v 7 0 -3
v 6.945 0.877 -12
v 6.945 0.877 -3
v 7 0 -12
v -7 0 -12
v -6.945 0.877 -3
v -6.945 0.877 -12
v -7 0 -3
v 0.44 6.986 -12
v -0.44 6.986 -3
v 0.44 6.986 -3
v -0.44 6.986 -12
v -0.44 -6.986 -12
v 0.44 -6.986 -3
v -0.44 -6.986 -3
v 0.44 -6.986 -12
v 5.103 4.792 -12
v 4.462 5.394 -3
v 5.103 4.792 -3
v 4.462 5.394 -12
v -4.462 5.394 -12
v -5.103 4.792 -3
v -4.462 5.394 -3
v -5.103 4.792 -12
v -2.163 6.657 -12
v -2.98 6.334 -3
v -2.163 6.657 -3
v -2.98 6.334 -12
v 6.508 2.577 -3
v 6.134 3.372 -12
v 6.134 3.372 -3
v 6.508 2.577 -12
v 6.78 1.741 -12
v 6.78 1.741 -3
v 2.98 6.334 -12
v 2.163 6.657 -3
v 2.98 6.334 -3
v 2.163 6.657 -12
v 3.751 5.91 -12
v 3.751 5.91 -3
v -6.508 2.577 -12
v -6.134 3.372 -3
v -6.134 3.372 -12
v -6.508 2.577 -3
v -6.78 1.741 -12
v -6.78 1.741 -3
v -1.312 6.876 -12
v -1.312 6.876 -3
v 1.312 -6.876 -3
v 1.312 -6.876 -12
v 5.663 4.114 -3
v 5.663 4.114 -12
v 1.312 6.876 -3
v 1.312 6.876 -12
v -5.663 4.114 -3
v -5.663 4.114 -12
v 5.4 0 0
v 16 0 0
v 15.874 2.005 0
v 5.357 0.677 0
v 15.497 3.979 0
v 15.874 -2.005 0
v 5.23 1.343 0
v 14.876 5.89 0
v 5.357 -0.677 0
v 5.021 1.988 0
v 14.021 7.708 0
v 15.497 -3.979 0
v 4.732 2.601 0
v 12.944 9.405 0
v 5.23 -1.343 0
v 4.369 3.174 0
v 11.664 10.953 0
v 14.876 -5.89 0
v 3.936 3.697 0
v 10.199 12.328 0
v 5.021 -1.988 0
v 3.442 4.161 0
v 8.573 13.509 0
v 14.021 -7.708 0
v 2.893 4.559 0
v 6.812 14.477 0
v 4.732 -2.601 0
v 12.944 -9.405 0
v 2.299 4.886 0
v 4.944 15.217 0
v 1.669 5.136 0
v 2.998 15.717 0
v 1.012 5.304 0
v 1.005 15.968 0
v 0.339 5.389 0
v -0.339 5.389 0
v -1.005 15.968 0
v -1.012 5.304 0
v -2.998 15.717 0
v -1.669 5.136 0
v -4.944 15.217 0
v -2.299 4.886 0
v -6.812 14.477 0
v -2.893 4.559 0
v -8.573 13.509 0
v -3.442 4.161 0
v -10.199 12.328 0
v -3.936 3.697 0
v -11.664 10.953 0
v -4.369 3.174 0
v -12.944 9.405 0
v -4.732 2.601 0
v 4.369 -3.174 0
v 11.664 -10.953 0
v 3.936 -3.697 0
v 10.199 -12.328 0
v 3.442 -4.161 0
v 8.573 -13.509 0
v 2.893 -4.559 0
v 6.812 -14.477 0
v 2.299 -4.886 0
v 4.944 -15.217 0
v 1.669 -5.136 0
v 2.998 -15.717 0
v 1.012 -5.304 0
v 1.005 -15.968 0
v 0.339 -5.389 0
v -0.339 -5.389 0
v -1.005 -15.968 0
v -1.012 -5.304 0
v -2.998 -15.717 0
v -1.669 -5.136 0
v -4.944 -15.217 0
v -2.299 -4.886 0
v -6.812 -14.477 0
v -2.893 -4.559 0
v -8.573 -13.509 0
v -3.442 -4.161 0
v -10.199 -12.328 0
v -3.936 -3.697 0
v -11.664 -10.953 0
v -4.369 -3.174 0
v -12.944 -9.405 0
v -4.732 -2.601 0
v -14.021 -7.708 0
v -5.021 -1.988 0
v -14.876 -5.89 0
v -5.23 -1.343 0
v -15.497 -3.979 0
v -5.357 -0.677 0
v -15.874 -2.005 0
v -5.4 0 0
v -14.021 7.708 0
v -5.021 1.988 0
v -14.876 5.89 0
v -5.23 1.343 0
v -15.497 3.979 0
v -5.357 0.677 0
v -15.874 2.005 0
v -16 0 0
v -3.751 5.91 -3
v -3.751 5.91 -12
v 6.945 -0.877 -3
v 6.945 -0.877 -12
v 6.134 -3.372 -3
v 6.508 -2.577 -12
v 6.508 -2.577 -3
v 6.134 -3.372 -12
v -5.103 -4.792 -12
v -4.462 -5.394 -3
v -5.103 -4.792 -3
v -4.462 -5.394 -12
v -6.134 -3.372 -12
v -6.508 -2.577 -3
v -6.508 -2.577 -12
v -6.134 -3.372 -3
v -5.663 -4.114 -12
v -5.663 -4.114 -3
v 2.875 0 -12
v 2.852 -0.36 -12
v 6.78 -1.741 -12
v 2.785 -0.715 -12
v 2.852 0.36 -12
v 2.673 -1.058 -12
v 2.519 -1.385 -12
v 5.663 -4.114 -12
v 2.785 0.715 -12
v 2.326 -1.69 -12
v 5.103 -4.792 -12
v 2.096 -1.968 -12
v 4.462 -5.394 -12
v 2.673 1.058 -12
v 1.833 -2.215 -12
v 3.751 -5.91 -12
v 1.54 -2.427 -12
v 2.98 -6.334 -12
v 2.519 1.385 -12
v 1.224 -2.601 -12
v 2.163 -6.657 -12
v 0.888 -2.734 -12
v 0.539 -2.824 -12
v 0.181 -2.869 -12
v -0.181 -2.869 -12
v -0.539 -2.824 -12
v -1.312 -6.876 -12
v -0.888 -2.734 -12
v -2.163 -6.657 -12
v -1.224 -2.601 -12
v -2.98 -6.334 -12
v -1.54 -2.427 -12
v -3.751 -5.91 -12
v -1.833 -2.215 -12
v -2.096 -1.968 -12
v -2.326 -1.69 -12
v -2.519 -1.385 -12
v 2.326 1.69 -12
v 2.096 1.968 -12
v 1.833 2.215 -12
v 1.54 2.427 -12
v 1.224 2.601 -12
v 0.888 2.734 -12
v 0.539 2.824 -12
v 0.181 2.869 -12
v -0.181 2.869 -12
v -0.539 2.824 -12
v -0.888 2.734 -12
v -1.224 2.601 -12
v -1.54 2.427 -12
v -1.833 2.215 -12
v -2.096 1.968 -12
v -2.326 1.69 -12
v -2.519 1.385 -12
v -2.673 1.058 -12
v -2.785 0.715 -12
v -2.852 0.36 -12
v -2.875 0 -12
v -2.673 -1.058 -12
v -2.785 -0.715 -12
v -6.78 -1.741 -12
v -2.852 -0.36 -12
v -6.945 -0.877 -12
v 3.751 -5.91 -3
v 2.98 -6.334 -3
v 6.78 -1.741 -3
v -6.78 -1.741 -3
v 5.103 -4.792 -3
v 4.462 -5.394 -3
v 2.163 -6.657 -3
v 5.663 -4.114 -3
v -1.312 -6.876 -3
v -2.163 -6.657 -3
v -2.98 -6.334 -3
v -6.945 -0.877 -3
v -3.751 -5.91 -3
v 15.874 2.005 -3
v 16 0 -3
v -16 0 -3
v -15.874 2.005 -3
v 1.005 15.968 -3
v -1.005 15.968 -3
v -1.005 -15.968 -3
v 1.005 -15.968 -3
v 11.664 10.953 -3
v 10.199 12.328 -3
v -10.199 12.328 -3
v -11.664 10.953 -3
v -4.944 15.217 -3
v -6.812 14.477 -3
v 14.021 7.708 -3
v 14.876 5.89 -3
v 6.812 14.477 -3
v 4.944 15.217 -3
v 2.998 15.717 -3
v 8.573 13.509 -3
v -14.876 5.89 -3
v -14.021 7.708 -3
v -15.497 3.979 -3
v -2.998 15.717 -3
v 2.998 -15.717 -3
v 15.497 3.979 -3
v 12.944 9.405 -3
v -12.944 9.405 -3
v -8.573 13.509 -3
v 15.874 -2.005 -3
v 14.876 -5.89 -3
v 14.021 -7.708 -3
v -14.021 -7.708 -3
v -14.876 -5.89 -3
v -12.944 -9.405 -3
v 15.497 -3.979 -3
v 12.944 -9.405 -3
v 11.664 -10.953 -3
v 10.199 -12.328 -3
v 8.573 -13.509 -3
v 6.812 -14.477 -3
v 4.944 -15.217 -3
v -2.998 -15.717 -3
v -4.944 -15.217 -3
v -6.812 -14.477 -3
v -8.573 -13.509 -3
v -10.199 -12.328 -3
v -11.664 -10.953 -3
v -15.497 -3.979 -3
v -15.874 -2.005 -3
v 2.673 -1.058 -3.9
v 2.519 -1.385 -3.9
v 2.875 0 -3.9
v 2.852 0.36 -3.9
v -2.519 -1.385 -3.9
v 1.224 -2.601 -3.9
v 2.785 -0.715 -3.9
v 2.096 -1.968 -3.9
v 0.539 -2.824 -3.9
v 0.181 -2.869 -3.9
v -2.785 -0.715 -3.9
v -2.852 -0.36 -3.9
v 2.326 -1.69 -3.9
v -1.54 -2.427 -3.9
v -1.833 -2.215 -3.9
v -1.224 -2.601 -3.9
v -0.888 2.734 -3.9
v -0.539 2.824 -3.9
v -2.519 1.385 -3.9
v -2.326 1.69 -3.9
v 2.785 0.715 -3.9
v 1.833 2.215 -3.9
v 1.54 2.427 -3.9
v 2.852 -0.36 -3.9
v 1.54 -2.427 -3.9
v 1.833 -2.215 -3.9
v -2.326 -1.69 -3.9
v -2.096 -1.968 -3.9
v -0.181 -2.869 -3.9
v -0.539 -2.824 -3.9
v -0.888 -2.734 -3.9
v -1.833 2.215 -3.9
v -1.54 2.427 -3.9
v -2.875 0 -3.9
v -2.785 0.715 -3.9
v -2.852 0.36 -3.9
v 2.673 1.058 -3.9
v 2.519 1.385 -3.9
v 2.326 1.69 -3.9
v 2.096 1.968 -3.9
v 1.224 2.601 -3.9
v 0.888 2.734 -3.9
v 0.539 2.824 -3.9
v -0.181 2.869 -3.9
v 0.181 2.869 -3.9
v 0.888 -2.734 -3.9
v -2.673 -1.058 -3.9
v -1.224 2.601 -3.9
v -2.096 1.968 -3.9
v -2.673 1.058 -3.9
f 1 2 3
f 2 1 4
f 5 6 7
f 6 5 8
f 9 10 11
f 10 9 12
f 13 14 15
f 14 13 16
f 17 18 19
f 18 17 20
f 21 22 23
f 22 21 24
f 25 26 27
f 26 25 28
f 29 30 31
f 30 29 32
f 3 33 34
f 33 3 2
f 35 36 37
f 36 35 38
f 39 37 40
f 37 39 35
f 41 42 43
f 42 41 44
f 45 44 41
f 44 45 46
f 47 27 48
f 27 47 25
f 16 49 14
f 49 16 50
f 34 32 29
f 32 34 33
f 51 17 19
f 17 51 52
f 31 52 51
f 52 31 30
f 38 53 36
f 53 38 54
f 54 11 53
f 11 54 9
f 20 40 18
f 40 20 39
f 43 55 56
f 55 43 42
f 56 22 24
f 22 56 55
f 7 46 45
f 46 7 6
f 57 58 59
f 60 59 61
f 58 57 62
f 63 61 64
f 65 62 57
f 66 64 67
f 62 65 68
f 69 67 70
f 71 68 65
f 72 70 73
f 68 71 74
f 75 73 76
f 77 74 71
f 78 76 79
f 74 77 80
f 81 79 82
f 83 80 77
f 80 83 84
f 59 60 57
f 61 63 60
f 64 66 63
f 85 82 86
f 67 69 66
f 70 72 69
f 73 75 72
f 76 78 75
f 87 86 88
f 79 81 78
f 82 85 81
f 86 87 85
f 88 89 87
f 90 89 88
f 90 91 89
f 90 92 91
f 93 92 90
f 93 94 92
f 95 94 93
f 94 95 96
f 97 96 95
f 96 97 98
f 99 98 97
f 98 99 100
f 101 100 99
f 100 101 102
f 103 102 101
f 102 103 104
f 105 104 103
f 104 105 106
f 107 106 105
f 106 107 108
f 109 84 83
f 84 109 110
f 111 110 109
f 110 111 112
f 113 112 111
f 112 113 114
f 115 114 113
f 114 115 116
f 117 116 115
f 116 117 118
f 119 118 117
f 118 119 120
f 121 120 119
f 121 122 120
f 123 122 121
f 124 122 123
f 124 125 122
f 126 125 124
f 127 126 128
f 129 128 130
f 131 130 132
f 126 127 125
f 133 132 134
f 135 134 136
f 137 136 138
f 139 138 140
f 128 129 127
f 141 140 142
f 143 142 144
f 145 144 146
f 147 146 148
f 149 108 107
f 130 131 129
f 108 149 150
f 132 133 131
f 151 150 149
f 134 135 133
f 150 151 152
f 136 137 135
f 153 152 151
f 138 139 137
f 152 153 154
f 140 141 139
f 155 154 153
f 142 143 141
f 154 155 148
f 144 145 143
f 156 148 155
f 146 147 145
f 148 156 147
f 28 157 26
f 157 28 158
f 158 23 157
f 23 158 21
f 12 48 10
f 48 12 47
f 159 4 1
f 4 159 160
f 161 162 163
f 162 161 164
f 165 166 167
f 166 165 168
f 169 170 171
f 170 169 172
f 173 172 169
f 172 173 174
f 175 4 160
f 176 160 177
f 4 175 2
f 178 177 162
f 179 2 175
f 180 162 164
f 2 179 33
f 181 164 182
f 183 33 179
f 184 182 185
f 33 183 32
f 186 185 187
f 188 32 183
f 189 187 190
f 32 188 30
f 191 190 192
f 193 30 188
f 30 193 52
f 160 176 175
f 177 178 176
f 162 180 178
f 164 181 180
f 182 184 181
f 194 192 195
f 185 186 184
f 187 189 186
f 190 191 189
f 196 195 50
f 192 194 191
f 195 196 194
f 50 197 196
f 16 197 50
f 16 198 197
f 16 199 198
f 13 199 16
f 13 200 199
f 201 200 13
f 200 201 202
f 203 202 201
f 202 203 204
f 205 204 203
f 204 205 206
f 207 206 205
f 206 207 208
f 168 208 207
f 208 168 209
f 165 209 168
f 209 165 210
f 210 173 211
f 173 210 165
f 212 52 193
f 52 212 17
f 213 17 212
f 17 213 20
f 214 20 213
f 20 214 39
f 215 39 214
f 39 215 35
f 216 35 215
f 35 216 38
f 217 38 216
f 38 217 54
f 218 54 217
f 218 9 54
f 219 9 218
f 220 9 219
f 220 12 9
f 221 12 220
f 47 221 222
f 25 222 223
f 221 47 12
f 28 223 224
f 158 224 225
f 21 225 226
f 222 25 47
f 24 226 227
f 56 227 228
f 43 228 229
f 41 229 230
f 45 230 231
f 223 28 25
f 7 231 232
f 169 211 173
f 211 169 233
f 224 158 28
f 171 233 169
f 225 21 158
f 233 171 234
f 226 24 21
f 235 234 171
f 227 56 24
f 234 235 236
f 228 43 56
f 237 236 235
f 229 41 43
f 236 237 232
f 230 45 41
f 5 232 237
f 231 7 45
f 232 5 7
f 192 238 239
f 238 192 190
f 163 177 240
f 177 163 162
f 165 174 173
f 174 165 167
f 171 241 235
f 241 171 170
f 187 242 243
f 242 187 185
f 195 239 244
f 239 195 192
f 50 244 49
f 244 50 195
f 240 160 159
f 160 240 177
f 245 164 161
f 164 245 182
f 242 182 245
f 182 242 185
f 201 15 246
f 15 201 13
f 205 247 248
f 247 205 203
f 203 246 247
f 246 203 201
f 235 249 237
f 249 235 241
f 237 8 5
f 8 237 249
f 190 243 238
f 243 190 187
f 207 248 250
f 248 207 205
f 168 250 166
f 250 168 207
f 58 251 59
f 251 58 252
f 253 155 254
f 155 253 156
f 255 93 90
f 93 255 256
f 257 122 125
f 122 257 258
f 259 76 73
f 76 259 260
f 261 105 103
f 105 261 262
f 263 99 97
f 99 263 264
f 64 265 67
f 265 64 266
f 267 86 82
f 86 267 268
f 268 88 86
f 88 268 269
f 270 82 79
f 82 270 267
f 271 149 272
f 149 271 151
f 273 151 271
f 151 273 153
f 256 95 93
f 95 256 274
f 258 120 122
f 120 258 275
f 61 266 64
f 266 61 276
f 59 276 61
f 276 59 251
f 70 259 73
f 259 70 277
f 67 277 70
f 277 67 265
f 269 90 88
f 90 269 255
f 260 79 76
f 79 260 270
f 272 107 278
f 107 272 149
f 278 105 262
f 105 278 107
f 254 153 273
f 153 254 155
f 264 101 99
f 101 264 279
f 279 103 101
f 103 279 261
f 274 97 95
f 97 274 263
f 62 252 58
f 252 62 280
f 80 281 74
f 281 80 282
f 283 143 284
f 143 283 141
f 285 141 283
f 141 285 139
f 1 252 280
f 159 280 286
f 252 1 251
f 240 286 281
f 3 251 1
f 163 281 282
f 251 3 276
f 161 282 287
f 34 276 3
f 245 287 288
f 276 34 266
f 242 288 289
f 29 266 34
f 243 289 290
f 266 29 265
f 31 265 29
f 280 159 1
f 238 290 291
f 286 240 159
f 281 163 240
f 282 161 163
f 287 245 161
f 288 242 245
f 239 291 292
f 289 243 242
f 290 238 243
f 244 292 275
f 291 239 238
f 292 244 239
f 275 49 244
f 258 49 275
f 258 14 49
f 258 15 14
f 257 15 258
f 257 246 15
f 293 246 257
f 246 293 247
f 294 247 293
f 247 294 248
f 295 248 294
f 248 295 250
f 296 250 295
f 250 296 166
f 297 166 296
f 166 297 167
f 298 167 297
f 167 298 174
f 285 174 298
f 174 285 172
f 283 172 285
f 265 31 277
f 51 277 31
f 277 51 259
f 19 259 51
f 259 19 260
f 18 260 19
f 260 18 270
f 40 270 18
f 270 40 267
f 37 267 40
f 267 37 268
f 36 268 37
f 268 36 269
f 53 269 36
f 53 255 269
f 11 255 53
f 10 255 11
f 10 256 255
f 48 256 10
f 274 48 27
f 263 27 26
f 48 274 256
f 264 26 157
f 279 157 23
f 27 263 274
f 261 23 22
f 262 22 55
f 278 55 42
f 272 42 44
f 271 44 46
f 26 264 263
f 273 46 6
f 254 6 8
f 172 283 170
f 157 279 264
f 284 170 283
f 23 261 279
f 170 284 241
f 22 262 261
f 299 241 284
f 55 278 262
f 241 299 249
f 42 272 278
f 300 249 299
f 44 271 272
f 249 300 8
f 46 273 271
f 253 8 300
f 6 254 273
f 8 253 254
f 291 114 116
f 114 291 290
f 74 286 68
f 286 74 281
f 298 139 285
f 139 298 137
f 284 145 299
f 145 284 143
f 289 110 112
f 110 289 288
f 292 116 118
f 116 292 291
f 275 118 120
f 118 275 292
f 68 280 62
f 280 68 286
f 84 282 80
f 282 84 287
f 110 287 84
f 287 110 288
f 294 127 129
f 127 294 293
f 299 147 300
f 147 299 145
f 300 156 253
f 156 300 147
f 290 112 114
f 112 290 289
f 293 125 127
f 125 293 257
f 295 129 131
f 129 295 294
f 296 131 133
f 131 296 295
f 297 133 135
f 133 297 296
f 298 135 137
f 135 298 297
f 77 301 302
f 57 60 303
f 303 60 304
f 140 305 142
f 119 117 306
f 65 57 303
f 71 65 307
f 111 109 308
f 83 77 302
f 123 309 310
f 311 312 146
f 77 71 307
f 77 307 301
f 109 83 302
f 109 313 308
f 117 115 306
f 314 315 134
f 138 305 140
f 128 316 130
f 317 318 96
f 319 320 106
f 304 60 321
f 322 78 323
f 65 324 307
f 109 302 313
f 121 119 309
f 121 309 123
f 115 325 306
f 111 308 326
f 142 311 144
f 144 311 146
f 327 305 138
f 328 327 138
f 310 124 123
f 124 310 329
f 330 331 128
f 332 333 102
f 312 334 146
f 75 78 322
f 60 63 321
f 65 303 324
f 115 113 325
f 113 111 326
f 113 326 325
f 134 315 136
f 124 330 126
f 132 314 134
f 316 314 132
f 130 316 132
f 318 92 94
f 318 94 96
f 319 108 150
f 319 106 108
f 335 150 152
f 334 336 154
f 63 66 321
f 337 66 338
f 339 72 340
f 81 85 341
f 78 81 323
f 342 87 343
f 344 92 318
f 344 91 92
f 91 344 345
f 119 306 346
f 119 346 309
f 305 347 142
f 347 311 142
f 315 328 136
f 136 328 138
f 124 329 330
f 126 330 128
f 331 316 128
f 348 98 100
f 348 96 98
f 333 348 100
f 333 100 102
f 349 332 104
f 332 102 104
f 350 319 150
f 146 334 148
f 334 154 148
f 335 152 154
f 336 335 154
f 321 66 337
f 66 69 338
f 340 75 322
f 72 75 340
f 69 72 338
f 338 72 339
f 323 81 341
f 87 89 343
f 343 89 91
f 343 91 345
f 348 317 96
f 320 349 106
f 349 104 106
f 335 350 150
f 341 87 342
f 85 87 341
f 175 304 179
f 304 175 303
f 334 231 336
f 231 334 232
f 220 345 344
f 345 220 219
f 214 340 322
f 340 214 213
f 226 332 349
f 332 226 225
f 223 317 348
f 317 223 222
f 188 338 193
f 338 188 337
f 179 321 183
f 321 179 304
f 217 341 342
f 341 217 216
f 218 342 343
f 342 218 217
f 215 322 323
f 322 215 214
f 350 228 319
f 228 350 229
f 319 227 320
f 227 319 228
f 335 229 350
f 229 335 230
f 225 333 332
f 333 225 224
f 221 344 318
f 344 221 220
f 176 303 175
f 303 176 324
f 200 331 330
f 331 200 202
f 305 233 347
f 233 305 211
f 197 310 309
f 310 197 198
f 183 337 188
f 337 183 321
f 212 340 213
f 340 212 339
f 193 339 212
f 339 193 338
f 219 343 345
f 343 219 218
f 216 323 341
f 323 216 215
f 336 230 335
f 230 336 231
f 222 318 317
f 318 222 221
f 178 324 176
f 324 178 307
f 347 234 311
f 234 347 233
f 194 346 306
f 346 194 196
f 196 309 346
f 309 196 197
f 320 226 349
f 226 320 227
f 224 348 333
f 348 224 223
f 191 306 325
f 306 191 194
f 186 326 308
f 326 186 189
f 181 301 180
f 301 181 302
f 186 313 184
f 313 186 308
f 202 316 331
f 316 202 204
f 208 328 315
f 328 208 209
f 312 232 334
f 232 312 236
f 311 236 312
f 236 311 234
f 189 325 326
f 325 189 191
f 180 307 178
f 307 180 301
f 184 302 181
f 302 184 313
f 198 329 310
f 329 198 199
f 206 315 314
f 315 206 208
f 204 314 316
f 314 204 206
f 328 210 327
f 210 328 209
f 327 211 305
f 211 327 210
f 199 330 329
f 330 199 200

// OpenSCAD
$fn = 50;


difference() {
	union() {
		translate(v = [0, 0, -12.0000000000]) {
			cylinder(h = 12, r = 7.0000000000);
		}
		translate(v = [0, 0, -3.0000000000]) {
			cylinder(h = 3, r = 16.0000000000);
		}
	}
	union() {
		translate(v = [0, 0, 0]) {
			rotate(a = [0, 0, 0]) {
				difference() {
					union() {
						#translate(v = [0, 0, -12.0000000000]) {
							cylinder(h = 12, r = 2.6000000000);
						}
						#translate(v = [0, 0, -3.9000000000]) {
							cylinder(h = 3.9000000000, r = 7.0000000000, r1 = 2.8750000000, r2 = 5.4000000000);
						}
						#translate(v = [0, 0, -12.0000000000]) {
							cylinder(h = 12, r = 2.8750000000);
						}
						#translate(v = [0, 0, -12.0000000000]) {
							cylinder(h = 12, r = 2.6000000000);
						}
					}
					union();
				}
			}
		}
	}
}
